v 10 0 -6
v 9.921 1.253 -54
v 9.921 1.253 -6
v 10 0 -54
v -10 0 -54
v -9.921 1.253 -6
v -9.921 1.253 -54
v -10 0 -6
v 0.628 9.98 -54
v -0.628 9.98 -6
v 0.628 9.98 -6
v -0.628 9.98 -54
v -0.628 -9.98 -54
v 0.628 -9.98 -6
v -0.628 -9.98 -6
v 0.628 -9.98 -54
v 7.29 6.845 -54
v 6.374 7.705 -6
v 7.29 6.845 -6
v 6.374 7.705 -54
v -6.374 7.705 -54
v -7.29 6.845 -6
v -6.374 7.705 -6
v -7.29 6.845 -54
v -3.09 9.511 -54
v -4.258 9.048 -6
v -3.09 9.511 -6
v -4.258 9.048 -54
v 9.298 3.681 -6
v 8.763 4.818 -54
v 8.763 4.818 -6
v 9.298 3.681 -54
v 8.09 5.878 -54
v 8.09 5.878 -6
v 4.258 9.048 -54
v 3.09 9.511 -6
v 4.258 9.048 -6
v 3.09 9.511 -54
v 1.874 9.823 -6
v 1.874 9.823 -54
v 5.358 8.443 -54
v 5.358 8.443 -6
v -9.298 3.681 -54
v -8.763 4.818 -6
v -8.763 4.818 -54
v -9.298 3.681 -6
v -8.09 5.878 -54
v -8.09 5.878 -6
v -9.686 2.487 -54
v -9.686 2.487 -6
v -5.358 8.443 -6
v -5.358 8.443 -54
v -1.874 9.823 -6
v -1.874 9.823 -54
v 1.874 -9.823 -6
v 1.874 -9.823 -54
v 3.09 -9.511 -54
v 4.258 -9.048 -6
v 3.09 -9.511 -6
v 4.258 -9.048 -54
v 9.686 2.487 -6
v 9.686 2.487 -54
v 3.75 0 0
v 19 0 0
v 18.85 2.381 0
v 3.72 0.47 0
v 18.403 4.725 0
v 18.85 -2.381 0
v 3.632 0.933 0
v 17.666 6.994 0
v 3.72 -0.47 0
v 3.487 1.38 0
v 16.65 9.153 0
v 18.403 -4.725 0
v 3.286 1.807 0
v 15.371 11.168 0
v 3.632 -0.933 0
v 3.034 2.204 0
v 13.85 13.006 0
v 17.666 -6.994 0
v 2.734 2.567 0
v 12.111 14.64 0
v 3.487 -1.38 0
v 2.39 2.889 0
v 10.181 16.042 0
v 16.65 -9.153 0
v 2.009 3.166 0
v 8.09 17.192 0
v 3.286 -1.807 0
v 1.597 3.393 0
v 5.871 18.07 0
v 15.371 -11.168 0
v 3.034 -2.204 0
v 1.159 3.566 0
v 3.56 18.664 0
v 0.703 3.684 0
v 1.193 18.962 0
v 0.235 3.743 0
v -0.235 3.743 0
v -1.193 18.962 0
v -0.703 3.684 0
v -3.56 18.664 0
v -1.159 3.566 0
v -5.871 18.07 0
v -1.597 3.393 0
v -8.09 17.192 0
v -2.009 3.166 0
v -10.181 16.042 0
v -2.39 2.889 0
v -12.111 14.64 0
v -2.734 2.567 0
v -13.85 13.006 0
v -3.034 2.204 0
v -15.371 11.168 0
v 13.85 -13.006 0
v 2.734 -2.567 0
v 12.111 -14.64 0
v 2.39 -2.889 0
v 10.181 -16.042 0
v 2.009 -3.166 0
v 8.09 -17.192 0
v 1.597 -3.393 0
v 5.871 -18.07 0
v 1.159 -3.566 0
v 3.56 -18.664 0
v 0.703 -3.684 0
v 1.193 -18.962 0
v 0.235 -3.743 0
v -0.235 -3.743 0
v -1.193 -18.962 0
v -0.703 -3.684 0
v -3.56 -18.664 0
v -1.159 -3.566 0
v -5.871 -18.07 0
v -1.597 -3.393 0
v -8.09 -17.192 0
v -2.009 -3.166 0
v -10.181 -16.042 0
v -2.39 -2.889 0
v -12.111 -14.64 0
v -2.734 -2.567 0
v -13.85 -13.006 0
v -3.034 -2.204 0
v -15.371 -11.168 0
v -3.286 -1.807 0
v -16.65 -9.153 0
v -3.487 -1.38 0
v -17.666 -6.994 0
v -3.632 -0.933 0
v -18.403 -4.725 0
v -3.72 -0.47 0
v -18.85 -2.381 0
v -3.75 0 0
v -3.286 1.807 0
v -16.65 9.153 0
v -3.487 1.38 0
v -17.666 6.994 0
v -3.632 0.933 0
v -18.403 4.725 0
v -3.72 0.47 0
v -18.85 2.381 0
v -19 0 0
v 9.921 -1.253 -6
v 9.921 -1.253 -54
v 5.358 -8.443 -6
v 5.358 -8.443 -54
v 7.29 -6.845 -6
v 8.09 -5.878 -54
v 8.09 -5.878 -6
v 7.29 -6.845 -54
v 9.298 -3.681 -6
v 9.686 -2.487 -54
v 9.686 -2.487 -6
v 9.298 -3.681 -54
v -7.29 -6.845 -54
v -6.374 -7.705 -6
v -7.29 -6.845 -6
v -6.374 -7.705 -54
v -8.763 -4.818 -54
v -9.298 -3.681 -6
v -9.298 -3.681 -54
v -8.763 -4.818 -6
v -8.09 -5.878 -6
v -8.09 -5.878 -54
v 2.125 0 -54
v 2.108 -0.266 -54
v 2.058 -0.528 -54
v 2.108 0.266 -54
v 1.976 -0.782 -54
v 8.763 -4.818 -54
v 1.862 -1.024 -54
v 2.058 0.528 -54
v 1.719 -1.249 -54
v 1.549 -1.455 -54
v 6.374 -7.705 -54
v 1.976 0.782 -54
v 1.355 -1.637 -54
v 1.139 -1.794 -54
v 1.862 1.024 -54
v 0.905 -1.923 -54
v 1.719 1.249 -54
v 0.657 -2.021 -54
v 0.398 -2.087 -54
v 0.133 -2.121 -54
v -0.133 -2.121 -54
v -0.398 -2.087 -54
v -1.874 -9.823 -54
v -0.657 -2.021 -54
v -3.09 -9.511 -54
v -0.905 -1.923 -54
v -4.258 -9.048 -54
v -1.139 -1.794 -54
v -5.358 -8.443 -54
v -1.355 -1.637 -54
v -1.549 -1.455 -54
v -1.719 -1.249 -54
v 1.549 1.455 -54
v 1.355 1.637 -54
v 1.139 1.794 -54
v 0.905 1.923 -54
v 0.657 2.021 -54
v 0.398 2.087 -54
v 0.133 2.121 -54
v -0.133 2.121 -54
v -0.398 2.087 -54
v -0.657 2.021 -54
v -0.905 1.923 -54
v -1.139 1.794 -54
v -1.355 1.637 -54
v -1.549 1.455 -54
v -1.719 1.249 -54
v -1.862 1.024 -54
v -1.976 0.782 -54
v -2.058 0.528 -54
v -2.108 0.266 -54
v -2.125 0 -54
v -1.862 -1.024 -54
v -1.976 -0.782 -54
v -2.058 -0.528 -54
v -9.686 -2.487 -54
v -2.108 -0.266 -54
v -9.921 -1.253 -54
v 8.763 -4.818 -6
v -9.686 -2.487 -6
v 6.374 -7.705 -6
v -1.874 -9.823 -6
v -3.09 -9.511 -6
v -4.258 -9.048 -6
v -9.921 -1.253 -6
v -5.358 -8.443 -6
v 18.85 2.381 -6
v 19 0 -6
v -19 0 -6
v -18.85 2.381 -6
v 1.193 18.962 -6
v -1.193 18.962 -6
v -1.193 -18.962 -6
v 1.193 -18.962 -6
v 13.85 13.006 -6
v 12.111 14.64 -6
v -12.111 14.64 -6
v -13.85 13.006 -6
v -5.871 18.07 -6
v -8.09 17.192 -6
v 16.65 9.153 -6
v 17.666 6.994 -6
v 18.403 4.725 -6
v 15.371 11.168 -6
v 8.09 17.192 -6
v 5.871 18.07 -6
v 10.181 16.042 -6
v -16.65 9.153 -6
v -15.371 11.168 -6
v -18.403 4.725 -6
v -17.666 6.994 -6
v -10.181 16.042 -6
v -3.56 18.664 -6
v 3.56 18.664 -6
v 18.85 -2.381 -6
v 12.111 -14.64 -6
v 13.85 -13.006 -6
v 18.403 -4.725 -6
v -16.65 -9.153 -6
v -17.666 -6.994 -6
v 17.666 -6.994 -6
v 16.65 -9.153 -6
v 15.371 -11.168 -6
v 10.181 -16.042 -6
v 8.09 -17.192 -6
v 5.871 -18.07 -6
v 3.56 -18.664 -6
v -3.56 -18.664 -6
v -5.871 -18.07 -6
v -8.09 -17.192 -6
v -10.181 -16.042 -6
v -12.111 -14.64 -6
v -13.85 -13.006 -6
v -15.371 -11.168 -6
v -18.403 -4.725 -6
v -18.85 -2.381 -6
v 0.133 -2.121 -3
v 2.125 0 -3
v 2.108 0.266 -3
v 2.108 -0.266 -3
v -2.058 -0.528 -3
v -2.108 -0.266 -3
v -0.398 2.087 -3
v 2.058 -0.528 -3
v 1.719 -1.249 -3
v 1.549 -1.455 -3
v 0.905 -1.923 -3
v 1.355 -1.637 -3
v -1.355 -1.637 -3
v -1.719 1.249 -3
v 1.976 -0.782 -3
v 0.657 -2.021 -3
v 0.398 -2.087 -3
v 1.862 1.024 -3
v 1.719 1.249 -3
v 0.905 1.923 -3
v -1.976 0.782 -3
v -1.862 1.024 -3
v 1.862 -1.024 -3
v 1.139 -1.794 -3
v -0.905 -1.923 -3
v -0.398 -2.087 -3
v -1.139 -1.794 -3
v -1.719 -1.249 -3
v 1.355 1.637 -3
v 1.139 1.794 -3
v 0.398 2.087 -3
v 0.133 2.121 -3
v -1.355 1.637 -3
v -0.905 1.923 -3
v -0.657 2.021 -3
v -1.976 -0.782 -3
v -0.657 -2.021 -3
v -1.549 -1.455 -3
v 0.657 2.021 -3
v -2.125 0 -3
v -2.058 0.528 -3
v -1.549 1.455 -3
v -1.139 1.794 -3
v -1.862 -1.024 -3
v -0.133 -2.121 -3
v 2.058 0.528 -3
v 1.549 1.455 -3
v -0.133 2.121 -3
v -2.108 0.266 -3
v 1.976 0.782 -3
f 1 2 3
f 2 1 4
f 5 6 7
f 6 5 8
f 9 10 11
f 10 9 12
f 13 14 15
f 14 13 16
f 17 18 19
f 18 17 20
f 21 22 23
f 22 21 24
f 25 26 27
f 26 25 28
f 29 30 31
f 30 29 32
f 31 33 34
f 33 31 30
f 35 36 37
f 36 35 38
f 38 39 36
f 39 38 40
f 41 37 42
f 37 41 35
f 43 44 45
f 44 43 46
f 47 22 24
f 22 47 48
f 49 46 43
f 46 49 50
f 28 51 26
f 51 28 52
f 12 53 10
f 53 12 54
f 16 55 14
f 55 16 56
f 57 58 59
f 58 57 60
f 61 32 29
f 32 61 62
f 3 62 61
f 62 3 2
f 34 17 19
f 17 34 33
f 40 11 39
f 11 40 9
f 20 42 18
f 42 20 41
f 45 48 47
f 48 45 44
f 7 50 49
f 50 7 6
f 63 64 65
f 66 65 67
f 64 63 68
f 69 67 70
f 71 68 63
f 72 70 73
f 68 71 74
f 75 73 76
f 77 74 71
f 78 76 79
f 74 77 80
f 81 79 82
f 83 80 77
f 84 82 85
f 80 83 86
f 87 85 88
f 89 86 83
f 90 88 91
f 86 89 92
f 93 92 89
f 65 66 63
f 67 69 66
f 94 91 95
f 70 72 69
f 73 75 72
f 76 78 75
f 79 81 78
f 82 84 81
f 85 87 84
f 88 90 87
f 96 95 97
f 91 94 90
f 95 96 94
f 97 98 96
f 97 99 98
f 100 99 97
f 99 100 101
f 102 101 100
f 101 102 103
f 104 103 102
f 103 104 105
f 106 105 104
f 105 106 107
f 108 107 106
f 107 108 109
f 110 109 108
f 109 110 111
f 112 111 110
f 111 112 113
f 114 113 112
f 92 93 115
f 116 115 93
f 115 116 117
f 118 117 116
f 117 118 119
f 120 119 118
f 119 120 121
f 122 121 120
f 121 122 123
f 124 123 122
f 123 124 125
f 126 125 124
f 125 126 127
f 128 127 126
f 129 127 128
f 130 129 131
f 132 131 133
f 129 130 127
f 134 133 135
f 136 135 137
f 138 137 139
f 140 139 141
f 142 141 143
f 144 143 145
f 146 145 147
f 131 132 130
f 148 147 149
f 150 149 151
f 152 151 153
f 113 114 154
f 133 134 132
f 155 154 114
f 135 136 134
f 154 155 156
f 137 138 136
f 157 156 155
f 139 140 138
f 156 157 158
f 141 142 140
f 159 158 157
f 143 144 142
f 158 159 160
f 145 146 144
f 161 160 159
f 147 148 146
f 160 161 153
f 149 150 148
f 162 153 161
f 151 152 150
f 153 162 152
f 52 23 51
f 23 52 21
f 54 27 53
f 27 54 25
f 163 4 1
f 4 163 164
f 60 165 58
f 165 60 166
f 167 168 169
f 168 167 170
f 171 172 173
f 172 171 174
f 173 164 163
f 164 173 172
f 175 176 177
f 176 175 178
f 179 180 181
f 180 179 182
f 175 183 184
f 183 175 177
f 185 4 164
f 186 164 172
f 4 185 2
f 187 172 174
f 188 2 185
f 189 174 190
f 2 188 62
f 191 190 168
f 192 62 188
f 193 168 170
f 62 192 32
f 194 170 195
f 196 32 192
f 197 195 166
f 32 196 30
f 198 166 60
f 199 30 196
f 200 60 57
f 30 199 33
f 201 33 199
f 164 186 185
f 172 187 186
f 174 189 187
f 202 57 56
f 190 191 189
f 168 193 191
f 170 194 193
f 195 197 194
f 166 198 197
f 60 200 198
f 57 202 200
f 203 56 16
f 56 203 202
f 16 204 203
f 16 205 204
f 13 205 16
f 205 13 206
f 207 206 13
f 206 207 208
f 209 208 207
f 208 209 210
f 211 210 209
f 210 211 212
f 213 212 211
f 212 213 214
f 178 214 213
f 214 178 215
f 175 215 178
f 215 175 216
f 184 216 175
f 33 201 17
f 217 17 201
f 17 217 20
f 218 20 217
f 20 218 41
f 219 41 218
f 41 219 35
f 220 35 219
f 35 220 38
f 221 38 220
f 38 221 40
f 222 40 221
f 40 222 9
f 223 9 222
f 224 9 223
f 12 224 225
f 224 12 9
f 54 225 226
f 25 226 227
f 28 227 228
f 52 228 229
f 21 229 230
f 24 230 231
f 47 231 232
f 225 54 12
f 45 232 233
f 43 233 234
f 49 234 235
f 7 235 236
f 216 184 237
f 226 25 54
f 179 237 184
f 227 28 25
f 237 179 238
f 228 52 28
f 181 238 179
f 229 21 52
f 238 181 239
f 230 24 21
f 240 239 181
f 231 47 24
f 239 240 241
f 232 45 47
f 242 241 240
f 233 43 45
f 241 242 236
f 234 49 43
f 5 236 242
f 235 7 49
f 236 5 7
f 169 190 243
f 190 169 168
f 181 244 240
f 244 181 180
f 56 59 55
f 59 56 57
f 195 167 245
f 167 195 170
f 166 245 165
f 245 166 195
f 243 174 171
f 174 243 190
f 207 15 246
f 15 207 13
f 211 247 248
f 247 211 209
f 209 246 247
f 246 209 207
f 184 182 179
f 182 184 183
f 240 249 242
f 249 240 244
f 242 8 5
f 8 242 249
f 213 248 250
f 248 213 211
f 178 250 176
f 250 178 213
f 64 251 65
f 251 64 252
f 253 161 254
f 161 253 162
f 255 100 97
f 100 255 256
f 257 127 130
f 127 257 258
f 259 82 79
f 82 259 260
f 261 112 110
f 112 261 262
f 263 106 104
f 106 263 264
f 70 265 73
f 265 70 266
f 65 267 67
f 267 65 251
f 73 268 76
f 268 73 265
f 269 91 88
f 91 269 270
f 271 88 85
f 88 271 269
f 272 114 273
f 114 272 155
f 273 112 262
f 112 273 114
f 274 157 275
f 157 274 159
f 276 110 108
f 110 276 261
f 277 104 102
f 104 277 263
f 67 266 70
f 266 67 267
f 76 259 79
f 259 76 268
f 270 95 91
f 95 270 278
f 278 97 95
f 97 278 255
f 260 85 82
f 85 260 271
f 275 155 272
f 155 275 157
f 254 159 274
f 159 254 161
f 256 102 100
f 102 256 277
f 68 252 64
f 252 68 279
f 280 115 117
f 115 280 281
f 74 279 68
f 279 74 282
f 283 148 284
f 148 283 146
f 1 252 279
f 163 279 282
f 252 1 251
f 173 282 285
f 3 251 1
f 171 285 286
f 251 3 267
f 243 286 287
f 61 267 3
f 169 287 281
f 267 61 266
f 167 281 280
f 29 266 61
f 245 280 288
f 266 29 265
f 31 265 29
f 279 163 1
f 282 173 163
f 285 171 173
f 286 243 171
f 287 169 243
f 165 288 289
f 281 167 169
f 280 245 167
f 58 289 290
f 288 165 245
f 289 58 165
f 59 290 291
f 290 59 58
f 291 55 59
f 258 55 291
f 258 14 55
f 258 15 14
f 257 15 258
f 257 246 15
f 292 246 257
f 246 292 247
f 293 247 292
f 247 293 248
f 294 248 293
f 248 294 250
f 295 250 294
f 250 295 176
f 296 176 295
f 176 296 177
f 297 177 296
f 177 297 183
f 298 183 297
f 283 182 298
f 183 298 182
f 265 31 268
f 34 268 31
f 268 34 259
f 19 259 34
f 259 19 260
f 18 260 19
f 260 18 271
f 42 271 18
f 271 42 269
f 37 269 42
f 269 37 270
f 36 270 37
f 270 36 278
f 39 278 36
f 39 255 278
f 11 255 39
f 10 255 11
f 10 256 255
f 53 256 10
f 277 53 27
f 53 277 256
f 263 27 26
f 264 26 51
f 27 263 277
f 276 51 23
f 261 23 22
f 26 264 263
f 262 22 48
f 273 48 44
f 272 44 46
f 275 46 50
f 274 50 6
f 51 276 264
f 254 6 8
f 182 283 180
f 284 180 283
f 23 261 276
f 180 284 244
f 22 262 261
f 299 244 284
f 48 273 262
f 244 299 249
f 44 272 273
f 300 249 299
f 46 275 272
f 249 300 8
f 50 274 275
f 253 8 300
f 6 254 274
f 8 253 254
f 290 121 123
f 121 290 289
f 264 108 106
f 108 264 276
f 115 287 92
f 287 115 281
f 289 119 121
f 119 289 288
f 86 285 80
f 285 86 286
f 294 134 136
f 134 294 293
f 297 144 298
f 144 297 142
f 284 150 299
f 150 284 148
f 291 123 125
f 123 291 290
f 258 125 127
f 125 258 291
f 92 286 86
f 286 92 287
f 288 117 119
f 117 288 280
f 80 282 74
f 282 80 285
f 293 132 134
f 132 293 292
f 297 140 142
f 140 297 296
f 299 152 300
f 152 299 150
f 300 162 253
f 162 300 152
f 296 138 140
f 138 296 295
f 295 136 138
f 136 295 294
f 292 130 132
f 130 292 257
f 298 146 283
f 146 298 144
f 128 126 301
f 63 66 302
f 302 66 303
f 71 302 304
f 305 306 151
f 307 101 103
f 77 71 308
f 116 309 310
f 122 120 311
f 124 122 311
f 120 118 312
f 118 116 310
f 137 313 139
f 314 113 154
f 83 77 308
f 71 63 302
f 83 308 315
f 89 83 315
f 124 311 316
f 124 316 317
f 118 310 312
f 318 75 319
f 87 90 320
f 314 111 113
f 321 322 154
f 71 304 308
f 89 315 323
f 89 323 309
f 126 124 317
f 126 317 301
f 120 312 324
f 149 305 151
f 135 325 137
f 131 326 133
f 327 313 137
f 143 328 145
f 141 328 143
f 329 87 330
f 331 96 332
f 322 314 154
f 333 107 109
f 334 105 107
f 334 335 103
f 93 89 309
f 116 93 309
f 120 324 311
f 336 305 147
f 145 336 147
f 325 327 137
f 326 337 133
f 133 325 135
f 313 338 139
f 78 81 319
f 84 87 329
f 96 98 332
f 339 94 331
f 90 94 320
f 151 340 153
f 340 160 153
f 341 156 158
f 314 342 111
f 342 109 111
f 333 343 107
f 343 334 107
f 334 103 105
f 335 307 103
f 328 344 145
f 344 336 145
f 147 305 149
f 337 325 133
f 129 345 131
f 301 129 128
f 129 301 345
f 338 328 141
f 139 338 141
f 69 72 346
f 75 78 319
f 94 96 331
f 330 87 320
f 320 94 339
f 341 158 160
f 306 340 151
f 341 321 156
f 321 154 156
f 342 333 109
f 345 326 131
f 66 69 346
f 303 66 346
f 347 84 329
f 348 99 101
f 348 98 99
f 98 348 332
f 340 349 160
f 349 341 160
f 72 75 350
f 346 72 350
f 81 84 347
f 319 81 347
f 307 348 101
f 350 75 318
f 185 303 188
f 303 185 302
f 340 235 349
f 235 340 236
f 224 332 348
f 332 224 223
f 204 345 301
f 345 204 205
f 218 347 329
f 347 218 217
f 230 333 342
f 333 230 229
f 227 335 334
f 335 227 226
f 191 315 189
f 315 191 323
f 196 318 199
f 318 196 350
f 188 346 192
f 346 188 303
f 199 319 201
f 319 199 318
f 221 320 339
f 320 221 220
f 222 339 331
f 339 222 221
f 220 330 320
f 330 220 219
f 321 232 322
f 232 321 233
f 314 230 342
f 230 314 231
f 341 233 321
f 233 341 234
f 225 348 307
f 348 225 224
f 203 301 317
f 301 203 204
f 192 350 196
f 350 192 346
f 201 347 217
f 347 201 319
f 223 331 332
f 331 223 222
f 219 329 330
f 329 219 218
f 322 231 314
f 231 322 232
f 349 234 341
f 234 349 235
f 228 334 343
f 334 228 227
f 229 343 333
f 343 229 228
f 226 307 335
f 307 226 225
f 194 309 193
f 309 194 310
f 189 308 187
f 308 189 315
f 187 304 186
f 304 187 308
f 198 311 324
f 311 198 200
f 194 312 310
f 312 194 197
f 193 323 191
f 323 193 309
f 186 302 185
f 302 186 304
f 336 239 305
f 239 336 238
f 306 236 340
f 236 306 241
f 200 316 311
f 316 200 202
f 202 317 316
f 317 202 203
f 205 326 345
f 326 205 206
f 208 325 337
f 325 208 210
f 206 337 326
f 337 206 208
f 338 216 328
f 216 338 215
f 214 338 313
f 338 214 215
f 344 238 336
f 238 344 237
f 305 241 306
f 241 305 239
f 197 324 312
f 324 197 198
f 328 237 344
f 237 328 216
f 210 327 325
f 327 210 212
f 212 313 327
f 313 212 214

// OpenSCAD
$fn = 50;


difference() {
	union() {
		translate(v = [0, 0, -54.0000000000]) {
			cylinder(h = 54, r = 10.0000000000);
		}
		translate(v = [0, 0, -6.0000000000]) {
			cylinder(h = 6, r = 19.0000000000);
		}
	}
	union() {
		translate(v = [0, 0, 0]) {
			rotate(a = [0, 0, 0]) {
				difference() {
					union() {
						#translate(v = [0, 0, -54.0000000000]) {
							cylinder(h = 54, r = 2.0000000000);
						}
						#translate(v = [0, 0, -3]) {
							cylinder(h = 3, r = 10.0000000000, r1 = 2.1250000000, r2 = 3.7500000000);
						}
						#translate(v = [0, 0, -54.0000000000]) {
							cylinder(h = 54, r = 2.1250000000);
						}
						#translate(v = [0, 0, -54.0000000000]) {
							cylinder(h = 54, r = 2.0000000000);
						}
					}
					union();
				}
			}
		}
	}
}
